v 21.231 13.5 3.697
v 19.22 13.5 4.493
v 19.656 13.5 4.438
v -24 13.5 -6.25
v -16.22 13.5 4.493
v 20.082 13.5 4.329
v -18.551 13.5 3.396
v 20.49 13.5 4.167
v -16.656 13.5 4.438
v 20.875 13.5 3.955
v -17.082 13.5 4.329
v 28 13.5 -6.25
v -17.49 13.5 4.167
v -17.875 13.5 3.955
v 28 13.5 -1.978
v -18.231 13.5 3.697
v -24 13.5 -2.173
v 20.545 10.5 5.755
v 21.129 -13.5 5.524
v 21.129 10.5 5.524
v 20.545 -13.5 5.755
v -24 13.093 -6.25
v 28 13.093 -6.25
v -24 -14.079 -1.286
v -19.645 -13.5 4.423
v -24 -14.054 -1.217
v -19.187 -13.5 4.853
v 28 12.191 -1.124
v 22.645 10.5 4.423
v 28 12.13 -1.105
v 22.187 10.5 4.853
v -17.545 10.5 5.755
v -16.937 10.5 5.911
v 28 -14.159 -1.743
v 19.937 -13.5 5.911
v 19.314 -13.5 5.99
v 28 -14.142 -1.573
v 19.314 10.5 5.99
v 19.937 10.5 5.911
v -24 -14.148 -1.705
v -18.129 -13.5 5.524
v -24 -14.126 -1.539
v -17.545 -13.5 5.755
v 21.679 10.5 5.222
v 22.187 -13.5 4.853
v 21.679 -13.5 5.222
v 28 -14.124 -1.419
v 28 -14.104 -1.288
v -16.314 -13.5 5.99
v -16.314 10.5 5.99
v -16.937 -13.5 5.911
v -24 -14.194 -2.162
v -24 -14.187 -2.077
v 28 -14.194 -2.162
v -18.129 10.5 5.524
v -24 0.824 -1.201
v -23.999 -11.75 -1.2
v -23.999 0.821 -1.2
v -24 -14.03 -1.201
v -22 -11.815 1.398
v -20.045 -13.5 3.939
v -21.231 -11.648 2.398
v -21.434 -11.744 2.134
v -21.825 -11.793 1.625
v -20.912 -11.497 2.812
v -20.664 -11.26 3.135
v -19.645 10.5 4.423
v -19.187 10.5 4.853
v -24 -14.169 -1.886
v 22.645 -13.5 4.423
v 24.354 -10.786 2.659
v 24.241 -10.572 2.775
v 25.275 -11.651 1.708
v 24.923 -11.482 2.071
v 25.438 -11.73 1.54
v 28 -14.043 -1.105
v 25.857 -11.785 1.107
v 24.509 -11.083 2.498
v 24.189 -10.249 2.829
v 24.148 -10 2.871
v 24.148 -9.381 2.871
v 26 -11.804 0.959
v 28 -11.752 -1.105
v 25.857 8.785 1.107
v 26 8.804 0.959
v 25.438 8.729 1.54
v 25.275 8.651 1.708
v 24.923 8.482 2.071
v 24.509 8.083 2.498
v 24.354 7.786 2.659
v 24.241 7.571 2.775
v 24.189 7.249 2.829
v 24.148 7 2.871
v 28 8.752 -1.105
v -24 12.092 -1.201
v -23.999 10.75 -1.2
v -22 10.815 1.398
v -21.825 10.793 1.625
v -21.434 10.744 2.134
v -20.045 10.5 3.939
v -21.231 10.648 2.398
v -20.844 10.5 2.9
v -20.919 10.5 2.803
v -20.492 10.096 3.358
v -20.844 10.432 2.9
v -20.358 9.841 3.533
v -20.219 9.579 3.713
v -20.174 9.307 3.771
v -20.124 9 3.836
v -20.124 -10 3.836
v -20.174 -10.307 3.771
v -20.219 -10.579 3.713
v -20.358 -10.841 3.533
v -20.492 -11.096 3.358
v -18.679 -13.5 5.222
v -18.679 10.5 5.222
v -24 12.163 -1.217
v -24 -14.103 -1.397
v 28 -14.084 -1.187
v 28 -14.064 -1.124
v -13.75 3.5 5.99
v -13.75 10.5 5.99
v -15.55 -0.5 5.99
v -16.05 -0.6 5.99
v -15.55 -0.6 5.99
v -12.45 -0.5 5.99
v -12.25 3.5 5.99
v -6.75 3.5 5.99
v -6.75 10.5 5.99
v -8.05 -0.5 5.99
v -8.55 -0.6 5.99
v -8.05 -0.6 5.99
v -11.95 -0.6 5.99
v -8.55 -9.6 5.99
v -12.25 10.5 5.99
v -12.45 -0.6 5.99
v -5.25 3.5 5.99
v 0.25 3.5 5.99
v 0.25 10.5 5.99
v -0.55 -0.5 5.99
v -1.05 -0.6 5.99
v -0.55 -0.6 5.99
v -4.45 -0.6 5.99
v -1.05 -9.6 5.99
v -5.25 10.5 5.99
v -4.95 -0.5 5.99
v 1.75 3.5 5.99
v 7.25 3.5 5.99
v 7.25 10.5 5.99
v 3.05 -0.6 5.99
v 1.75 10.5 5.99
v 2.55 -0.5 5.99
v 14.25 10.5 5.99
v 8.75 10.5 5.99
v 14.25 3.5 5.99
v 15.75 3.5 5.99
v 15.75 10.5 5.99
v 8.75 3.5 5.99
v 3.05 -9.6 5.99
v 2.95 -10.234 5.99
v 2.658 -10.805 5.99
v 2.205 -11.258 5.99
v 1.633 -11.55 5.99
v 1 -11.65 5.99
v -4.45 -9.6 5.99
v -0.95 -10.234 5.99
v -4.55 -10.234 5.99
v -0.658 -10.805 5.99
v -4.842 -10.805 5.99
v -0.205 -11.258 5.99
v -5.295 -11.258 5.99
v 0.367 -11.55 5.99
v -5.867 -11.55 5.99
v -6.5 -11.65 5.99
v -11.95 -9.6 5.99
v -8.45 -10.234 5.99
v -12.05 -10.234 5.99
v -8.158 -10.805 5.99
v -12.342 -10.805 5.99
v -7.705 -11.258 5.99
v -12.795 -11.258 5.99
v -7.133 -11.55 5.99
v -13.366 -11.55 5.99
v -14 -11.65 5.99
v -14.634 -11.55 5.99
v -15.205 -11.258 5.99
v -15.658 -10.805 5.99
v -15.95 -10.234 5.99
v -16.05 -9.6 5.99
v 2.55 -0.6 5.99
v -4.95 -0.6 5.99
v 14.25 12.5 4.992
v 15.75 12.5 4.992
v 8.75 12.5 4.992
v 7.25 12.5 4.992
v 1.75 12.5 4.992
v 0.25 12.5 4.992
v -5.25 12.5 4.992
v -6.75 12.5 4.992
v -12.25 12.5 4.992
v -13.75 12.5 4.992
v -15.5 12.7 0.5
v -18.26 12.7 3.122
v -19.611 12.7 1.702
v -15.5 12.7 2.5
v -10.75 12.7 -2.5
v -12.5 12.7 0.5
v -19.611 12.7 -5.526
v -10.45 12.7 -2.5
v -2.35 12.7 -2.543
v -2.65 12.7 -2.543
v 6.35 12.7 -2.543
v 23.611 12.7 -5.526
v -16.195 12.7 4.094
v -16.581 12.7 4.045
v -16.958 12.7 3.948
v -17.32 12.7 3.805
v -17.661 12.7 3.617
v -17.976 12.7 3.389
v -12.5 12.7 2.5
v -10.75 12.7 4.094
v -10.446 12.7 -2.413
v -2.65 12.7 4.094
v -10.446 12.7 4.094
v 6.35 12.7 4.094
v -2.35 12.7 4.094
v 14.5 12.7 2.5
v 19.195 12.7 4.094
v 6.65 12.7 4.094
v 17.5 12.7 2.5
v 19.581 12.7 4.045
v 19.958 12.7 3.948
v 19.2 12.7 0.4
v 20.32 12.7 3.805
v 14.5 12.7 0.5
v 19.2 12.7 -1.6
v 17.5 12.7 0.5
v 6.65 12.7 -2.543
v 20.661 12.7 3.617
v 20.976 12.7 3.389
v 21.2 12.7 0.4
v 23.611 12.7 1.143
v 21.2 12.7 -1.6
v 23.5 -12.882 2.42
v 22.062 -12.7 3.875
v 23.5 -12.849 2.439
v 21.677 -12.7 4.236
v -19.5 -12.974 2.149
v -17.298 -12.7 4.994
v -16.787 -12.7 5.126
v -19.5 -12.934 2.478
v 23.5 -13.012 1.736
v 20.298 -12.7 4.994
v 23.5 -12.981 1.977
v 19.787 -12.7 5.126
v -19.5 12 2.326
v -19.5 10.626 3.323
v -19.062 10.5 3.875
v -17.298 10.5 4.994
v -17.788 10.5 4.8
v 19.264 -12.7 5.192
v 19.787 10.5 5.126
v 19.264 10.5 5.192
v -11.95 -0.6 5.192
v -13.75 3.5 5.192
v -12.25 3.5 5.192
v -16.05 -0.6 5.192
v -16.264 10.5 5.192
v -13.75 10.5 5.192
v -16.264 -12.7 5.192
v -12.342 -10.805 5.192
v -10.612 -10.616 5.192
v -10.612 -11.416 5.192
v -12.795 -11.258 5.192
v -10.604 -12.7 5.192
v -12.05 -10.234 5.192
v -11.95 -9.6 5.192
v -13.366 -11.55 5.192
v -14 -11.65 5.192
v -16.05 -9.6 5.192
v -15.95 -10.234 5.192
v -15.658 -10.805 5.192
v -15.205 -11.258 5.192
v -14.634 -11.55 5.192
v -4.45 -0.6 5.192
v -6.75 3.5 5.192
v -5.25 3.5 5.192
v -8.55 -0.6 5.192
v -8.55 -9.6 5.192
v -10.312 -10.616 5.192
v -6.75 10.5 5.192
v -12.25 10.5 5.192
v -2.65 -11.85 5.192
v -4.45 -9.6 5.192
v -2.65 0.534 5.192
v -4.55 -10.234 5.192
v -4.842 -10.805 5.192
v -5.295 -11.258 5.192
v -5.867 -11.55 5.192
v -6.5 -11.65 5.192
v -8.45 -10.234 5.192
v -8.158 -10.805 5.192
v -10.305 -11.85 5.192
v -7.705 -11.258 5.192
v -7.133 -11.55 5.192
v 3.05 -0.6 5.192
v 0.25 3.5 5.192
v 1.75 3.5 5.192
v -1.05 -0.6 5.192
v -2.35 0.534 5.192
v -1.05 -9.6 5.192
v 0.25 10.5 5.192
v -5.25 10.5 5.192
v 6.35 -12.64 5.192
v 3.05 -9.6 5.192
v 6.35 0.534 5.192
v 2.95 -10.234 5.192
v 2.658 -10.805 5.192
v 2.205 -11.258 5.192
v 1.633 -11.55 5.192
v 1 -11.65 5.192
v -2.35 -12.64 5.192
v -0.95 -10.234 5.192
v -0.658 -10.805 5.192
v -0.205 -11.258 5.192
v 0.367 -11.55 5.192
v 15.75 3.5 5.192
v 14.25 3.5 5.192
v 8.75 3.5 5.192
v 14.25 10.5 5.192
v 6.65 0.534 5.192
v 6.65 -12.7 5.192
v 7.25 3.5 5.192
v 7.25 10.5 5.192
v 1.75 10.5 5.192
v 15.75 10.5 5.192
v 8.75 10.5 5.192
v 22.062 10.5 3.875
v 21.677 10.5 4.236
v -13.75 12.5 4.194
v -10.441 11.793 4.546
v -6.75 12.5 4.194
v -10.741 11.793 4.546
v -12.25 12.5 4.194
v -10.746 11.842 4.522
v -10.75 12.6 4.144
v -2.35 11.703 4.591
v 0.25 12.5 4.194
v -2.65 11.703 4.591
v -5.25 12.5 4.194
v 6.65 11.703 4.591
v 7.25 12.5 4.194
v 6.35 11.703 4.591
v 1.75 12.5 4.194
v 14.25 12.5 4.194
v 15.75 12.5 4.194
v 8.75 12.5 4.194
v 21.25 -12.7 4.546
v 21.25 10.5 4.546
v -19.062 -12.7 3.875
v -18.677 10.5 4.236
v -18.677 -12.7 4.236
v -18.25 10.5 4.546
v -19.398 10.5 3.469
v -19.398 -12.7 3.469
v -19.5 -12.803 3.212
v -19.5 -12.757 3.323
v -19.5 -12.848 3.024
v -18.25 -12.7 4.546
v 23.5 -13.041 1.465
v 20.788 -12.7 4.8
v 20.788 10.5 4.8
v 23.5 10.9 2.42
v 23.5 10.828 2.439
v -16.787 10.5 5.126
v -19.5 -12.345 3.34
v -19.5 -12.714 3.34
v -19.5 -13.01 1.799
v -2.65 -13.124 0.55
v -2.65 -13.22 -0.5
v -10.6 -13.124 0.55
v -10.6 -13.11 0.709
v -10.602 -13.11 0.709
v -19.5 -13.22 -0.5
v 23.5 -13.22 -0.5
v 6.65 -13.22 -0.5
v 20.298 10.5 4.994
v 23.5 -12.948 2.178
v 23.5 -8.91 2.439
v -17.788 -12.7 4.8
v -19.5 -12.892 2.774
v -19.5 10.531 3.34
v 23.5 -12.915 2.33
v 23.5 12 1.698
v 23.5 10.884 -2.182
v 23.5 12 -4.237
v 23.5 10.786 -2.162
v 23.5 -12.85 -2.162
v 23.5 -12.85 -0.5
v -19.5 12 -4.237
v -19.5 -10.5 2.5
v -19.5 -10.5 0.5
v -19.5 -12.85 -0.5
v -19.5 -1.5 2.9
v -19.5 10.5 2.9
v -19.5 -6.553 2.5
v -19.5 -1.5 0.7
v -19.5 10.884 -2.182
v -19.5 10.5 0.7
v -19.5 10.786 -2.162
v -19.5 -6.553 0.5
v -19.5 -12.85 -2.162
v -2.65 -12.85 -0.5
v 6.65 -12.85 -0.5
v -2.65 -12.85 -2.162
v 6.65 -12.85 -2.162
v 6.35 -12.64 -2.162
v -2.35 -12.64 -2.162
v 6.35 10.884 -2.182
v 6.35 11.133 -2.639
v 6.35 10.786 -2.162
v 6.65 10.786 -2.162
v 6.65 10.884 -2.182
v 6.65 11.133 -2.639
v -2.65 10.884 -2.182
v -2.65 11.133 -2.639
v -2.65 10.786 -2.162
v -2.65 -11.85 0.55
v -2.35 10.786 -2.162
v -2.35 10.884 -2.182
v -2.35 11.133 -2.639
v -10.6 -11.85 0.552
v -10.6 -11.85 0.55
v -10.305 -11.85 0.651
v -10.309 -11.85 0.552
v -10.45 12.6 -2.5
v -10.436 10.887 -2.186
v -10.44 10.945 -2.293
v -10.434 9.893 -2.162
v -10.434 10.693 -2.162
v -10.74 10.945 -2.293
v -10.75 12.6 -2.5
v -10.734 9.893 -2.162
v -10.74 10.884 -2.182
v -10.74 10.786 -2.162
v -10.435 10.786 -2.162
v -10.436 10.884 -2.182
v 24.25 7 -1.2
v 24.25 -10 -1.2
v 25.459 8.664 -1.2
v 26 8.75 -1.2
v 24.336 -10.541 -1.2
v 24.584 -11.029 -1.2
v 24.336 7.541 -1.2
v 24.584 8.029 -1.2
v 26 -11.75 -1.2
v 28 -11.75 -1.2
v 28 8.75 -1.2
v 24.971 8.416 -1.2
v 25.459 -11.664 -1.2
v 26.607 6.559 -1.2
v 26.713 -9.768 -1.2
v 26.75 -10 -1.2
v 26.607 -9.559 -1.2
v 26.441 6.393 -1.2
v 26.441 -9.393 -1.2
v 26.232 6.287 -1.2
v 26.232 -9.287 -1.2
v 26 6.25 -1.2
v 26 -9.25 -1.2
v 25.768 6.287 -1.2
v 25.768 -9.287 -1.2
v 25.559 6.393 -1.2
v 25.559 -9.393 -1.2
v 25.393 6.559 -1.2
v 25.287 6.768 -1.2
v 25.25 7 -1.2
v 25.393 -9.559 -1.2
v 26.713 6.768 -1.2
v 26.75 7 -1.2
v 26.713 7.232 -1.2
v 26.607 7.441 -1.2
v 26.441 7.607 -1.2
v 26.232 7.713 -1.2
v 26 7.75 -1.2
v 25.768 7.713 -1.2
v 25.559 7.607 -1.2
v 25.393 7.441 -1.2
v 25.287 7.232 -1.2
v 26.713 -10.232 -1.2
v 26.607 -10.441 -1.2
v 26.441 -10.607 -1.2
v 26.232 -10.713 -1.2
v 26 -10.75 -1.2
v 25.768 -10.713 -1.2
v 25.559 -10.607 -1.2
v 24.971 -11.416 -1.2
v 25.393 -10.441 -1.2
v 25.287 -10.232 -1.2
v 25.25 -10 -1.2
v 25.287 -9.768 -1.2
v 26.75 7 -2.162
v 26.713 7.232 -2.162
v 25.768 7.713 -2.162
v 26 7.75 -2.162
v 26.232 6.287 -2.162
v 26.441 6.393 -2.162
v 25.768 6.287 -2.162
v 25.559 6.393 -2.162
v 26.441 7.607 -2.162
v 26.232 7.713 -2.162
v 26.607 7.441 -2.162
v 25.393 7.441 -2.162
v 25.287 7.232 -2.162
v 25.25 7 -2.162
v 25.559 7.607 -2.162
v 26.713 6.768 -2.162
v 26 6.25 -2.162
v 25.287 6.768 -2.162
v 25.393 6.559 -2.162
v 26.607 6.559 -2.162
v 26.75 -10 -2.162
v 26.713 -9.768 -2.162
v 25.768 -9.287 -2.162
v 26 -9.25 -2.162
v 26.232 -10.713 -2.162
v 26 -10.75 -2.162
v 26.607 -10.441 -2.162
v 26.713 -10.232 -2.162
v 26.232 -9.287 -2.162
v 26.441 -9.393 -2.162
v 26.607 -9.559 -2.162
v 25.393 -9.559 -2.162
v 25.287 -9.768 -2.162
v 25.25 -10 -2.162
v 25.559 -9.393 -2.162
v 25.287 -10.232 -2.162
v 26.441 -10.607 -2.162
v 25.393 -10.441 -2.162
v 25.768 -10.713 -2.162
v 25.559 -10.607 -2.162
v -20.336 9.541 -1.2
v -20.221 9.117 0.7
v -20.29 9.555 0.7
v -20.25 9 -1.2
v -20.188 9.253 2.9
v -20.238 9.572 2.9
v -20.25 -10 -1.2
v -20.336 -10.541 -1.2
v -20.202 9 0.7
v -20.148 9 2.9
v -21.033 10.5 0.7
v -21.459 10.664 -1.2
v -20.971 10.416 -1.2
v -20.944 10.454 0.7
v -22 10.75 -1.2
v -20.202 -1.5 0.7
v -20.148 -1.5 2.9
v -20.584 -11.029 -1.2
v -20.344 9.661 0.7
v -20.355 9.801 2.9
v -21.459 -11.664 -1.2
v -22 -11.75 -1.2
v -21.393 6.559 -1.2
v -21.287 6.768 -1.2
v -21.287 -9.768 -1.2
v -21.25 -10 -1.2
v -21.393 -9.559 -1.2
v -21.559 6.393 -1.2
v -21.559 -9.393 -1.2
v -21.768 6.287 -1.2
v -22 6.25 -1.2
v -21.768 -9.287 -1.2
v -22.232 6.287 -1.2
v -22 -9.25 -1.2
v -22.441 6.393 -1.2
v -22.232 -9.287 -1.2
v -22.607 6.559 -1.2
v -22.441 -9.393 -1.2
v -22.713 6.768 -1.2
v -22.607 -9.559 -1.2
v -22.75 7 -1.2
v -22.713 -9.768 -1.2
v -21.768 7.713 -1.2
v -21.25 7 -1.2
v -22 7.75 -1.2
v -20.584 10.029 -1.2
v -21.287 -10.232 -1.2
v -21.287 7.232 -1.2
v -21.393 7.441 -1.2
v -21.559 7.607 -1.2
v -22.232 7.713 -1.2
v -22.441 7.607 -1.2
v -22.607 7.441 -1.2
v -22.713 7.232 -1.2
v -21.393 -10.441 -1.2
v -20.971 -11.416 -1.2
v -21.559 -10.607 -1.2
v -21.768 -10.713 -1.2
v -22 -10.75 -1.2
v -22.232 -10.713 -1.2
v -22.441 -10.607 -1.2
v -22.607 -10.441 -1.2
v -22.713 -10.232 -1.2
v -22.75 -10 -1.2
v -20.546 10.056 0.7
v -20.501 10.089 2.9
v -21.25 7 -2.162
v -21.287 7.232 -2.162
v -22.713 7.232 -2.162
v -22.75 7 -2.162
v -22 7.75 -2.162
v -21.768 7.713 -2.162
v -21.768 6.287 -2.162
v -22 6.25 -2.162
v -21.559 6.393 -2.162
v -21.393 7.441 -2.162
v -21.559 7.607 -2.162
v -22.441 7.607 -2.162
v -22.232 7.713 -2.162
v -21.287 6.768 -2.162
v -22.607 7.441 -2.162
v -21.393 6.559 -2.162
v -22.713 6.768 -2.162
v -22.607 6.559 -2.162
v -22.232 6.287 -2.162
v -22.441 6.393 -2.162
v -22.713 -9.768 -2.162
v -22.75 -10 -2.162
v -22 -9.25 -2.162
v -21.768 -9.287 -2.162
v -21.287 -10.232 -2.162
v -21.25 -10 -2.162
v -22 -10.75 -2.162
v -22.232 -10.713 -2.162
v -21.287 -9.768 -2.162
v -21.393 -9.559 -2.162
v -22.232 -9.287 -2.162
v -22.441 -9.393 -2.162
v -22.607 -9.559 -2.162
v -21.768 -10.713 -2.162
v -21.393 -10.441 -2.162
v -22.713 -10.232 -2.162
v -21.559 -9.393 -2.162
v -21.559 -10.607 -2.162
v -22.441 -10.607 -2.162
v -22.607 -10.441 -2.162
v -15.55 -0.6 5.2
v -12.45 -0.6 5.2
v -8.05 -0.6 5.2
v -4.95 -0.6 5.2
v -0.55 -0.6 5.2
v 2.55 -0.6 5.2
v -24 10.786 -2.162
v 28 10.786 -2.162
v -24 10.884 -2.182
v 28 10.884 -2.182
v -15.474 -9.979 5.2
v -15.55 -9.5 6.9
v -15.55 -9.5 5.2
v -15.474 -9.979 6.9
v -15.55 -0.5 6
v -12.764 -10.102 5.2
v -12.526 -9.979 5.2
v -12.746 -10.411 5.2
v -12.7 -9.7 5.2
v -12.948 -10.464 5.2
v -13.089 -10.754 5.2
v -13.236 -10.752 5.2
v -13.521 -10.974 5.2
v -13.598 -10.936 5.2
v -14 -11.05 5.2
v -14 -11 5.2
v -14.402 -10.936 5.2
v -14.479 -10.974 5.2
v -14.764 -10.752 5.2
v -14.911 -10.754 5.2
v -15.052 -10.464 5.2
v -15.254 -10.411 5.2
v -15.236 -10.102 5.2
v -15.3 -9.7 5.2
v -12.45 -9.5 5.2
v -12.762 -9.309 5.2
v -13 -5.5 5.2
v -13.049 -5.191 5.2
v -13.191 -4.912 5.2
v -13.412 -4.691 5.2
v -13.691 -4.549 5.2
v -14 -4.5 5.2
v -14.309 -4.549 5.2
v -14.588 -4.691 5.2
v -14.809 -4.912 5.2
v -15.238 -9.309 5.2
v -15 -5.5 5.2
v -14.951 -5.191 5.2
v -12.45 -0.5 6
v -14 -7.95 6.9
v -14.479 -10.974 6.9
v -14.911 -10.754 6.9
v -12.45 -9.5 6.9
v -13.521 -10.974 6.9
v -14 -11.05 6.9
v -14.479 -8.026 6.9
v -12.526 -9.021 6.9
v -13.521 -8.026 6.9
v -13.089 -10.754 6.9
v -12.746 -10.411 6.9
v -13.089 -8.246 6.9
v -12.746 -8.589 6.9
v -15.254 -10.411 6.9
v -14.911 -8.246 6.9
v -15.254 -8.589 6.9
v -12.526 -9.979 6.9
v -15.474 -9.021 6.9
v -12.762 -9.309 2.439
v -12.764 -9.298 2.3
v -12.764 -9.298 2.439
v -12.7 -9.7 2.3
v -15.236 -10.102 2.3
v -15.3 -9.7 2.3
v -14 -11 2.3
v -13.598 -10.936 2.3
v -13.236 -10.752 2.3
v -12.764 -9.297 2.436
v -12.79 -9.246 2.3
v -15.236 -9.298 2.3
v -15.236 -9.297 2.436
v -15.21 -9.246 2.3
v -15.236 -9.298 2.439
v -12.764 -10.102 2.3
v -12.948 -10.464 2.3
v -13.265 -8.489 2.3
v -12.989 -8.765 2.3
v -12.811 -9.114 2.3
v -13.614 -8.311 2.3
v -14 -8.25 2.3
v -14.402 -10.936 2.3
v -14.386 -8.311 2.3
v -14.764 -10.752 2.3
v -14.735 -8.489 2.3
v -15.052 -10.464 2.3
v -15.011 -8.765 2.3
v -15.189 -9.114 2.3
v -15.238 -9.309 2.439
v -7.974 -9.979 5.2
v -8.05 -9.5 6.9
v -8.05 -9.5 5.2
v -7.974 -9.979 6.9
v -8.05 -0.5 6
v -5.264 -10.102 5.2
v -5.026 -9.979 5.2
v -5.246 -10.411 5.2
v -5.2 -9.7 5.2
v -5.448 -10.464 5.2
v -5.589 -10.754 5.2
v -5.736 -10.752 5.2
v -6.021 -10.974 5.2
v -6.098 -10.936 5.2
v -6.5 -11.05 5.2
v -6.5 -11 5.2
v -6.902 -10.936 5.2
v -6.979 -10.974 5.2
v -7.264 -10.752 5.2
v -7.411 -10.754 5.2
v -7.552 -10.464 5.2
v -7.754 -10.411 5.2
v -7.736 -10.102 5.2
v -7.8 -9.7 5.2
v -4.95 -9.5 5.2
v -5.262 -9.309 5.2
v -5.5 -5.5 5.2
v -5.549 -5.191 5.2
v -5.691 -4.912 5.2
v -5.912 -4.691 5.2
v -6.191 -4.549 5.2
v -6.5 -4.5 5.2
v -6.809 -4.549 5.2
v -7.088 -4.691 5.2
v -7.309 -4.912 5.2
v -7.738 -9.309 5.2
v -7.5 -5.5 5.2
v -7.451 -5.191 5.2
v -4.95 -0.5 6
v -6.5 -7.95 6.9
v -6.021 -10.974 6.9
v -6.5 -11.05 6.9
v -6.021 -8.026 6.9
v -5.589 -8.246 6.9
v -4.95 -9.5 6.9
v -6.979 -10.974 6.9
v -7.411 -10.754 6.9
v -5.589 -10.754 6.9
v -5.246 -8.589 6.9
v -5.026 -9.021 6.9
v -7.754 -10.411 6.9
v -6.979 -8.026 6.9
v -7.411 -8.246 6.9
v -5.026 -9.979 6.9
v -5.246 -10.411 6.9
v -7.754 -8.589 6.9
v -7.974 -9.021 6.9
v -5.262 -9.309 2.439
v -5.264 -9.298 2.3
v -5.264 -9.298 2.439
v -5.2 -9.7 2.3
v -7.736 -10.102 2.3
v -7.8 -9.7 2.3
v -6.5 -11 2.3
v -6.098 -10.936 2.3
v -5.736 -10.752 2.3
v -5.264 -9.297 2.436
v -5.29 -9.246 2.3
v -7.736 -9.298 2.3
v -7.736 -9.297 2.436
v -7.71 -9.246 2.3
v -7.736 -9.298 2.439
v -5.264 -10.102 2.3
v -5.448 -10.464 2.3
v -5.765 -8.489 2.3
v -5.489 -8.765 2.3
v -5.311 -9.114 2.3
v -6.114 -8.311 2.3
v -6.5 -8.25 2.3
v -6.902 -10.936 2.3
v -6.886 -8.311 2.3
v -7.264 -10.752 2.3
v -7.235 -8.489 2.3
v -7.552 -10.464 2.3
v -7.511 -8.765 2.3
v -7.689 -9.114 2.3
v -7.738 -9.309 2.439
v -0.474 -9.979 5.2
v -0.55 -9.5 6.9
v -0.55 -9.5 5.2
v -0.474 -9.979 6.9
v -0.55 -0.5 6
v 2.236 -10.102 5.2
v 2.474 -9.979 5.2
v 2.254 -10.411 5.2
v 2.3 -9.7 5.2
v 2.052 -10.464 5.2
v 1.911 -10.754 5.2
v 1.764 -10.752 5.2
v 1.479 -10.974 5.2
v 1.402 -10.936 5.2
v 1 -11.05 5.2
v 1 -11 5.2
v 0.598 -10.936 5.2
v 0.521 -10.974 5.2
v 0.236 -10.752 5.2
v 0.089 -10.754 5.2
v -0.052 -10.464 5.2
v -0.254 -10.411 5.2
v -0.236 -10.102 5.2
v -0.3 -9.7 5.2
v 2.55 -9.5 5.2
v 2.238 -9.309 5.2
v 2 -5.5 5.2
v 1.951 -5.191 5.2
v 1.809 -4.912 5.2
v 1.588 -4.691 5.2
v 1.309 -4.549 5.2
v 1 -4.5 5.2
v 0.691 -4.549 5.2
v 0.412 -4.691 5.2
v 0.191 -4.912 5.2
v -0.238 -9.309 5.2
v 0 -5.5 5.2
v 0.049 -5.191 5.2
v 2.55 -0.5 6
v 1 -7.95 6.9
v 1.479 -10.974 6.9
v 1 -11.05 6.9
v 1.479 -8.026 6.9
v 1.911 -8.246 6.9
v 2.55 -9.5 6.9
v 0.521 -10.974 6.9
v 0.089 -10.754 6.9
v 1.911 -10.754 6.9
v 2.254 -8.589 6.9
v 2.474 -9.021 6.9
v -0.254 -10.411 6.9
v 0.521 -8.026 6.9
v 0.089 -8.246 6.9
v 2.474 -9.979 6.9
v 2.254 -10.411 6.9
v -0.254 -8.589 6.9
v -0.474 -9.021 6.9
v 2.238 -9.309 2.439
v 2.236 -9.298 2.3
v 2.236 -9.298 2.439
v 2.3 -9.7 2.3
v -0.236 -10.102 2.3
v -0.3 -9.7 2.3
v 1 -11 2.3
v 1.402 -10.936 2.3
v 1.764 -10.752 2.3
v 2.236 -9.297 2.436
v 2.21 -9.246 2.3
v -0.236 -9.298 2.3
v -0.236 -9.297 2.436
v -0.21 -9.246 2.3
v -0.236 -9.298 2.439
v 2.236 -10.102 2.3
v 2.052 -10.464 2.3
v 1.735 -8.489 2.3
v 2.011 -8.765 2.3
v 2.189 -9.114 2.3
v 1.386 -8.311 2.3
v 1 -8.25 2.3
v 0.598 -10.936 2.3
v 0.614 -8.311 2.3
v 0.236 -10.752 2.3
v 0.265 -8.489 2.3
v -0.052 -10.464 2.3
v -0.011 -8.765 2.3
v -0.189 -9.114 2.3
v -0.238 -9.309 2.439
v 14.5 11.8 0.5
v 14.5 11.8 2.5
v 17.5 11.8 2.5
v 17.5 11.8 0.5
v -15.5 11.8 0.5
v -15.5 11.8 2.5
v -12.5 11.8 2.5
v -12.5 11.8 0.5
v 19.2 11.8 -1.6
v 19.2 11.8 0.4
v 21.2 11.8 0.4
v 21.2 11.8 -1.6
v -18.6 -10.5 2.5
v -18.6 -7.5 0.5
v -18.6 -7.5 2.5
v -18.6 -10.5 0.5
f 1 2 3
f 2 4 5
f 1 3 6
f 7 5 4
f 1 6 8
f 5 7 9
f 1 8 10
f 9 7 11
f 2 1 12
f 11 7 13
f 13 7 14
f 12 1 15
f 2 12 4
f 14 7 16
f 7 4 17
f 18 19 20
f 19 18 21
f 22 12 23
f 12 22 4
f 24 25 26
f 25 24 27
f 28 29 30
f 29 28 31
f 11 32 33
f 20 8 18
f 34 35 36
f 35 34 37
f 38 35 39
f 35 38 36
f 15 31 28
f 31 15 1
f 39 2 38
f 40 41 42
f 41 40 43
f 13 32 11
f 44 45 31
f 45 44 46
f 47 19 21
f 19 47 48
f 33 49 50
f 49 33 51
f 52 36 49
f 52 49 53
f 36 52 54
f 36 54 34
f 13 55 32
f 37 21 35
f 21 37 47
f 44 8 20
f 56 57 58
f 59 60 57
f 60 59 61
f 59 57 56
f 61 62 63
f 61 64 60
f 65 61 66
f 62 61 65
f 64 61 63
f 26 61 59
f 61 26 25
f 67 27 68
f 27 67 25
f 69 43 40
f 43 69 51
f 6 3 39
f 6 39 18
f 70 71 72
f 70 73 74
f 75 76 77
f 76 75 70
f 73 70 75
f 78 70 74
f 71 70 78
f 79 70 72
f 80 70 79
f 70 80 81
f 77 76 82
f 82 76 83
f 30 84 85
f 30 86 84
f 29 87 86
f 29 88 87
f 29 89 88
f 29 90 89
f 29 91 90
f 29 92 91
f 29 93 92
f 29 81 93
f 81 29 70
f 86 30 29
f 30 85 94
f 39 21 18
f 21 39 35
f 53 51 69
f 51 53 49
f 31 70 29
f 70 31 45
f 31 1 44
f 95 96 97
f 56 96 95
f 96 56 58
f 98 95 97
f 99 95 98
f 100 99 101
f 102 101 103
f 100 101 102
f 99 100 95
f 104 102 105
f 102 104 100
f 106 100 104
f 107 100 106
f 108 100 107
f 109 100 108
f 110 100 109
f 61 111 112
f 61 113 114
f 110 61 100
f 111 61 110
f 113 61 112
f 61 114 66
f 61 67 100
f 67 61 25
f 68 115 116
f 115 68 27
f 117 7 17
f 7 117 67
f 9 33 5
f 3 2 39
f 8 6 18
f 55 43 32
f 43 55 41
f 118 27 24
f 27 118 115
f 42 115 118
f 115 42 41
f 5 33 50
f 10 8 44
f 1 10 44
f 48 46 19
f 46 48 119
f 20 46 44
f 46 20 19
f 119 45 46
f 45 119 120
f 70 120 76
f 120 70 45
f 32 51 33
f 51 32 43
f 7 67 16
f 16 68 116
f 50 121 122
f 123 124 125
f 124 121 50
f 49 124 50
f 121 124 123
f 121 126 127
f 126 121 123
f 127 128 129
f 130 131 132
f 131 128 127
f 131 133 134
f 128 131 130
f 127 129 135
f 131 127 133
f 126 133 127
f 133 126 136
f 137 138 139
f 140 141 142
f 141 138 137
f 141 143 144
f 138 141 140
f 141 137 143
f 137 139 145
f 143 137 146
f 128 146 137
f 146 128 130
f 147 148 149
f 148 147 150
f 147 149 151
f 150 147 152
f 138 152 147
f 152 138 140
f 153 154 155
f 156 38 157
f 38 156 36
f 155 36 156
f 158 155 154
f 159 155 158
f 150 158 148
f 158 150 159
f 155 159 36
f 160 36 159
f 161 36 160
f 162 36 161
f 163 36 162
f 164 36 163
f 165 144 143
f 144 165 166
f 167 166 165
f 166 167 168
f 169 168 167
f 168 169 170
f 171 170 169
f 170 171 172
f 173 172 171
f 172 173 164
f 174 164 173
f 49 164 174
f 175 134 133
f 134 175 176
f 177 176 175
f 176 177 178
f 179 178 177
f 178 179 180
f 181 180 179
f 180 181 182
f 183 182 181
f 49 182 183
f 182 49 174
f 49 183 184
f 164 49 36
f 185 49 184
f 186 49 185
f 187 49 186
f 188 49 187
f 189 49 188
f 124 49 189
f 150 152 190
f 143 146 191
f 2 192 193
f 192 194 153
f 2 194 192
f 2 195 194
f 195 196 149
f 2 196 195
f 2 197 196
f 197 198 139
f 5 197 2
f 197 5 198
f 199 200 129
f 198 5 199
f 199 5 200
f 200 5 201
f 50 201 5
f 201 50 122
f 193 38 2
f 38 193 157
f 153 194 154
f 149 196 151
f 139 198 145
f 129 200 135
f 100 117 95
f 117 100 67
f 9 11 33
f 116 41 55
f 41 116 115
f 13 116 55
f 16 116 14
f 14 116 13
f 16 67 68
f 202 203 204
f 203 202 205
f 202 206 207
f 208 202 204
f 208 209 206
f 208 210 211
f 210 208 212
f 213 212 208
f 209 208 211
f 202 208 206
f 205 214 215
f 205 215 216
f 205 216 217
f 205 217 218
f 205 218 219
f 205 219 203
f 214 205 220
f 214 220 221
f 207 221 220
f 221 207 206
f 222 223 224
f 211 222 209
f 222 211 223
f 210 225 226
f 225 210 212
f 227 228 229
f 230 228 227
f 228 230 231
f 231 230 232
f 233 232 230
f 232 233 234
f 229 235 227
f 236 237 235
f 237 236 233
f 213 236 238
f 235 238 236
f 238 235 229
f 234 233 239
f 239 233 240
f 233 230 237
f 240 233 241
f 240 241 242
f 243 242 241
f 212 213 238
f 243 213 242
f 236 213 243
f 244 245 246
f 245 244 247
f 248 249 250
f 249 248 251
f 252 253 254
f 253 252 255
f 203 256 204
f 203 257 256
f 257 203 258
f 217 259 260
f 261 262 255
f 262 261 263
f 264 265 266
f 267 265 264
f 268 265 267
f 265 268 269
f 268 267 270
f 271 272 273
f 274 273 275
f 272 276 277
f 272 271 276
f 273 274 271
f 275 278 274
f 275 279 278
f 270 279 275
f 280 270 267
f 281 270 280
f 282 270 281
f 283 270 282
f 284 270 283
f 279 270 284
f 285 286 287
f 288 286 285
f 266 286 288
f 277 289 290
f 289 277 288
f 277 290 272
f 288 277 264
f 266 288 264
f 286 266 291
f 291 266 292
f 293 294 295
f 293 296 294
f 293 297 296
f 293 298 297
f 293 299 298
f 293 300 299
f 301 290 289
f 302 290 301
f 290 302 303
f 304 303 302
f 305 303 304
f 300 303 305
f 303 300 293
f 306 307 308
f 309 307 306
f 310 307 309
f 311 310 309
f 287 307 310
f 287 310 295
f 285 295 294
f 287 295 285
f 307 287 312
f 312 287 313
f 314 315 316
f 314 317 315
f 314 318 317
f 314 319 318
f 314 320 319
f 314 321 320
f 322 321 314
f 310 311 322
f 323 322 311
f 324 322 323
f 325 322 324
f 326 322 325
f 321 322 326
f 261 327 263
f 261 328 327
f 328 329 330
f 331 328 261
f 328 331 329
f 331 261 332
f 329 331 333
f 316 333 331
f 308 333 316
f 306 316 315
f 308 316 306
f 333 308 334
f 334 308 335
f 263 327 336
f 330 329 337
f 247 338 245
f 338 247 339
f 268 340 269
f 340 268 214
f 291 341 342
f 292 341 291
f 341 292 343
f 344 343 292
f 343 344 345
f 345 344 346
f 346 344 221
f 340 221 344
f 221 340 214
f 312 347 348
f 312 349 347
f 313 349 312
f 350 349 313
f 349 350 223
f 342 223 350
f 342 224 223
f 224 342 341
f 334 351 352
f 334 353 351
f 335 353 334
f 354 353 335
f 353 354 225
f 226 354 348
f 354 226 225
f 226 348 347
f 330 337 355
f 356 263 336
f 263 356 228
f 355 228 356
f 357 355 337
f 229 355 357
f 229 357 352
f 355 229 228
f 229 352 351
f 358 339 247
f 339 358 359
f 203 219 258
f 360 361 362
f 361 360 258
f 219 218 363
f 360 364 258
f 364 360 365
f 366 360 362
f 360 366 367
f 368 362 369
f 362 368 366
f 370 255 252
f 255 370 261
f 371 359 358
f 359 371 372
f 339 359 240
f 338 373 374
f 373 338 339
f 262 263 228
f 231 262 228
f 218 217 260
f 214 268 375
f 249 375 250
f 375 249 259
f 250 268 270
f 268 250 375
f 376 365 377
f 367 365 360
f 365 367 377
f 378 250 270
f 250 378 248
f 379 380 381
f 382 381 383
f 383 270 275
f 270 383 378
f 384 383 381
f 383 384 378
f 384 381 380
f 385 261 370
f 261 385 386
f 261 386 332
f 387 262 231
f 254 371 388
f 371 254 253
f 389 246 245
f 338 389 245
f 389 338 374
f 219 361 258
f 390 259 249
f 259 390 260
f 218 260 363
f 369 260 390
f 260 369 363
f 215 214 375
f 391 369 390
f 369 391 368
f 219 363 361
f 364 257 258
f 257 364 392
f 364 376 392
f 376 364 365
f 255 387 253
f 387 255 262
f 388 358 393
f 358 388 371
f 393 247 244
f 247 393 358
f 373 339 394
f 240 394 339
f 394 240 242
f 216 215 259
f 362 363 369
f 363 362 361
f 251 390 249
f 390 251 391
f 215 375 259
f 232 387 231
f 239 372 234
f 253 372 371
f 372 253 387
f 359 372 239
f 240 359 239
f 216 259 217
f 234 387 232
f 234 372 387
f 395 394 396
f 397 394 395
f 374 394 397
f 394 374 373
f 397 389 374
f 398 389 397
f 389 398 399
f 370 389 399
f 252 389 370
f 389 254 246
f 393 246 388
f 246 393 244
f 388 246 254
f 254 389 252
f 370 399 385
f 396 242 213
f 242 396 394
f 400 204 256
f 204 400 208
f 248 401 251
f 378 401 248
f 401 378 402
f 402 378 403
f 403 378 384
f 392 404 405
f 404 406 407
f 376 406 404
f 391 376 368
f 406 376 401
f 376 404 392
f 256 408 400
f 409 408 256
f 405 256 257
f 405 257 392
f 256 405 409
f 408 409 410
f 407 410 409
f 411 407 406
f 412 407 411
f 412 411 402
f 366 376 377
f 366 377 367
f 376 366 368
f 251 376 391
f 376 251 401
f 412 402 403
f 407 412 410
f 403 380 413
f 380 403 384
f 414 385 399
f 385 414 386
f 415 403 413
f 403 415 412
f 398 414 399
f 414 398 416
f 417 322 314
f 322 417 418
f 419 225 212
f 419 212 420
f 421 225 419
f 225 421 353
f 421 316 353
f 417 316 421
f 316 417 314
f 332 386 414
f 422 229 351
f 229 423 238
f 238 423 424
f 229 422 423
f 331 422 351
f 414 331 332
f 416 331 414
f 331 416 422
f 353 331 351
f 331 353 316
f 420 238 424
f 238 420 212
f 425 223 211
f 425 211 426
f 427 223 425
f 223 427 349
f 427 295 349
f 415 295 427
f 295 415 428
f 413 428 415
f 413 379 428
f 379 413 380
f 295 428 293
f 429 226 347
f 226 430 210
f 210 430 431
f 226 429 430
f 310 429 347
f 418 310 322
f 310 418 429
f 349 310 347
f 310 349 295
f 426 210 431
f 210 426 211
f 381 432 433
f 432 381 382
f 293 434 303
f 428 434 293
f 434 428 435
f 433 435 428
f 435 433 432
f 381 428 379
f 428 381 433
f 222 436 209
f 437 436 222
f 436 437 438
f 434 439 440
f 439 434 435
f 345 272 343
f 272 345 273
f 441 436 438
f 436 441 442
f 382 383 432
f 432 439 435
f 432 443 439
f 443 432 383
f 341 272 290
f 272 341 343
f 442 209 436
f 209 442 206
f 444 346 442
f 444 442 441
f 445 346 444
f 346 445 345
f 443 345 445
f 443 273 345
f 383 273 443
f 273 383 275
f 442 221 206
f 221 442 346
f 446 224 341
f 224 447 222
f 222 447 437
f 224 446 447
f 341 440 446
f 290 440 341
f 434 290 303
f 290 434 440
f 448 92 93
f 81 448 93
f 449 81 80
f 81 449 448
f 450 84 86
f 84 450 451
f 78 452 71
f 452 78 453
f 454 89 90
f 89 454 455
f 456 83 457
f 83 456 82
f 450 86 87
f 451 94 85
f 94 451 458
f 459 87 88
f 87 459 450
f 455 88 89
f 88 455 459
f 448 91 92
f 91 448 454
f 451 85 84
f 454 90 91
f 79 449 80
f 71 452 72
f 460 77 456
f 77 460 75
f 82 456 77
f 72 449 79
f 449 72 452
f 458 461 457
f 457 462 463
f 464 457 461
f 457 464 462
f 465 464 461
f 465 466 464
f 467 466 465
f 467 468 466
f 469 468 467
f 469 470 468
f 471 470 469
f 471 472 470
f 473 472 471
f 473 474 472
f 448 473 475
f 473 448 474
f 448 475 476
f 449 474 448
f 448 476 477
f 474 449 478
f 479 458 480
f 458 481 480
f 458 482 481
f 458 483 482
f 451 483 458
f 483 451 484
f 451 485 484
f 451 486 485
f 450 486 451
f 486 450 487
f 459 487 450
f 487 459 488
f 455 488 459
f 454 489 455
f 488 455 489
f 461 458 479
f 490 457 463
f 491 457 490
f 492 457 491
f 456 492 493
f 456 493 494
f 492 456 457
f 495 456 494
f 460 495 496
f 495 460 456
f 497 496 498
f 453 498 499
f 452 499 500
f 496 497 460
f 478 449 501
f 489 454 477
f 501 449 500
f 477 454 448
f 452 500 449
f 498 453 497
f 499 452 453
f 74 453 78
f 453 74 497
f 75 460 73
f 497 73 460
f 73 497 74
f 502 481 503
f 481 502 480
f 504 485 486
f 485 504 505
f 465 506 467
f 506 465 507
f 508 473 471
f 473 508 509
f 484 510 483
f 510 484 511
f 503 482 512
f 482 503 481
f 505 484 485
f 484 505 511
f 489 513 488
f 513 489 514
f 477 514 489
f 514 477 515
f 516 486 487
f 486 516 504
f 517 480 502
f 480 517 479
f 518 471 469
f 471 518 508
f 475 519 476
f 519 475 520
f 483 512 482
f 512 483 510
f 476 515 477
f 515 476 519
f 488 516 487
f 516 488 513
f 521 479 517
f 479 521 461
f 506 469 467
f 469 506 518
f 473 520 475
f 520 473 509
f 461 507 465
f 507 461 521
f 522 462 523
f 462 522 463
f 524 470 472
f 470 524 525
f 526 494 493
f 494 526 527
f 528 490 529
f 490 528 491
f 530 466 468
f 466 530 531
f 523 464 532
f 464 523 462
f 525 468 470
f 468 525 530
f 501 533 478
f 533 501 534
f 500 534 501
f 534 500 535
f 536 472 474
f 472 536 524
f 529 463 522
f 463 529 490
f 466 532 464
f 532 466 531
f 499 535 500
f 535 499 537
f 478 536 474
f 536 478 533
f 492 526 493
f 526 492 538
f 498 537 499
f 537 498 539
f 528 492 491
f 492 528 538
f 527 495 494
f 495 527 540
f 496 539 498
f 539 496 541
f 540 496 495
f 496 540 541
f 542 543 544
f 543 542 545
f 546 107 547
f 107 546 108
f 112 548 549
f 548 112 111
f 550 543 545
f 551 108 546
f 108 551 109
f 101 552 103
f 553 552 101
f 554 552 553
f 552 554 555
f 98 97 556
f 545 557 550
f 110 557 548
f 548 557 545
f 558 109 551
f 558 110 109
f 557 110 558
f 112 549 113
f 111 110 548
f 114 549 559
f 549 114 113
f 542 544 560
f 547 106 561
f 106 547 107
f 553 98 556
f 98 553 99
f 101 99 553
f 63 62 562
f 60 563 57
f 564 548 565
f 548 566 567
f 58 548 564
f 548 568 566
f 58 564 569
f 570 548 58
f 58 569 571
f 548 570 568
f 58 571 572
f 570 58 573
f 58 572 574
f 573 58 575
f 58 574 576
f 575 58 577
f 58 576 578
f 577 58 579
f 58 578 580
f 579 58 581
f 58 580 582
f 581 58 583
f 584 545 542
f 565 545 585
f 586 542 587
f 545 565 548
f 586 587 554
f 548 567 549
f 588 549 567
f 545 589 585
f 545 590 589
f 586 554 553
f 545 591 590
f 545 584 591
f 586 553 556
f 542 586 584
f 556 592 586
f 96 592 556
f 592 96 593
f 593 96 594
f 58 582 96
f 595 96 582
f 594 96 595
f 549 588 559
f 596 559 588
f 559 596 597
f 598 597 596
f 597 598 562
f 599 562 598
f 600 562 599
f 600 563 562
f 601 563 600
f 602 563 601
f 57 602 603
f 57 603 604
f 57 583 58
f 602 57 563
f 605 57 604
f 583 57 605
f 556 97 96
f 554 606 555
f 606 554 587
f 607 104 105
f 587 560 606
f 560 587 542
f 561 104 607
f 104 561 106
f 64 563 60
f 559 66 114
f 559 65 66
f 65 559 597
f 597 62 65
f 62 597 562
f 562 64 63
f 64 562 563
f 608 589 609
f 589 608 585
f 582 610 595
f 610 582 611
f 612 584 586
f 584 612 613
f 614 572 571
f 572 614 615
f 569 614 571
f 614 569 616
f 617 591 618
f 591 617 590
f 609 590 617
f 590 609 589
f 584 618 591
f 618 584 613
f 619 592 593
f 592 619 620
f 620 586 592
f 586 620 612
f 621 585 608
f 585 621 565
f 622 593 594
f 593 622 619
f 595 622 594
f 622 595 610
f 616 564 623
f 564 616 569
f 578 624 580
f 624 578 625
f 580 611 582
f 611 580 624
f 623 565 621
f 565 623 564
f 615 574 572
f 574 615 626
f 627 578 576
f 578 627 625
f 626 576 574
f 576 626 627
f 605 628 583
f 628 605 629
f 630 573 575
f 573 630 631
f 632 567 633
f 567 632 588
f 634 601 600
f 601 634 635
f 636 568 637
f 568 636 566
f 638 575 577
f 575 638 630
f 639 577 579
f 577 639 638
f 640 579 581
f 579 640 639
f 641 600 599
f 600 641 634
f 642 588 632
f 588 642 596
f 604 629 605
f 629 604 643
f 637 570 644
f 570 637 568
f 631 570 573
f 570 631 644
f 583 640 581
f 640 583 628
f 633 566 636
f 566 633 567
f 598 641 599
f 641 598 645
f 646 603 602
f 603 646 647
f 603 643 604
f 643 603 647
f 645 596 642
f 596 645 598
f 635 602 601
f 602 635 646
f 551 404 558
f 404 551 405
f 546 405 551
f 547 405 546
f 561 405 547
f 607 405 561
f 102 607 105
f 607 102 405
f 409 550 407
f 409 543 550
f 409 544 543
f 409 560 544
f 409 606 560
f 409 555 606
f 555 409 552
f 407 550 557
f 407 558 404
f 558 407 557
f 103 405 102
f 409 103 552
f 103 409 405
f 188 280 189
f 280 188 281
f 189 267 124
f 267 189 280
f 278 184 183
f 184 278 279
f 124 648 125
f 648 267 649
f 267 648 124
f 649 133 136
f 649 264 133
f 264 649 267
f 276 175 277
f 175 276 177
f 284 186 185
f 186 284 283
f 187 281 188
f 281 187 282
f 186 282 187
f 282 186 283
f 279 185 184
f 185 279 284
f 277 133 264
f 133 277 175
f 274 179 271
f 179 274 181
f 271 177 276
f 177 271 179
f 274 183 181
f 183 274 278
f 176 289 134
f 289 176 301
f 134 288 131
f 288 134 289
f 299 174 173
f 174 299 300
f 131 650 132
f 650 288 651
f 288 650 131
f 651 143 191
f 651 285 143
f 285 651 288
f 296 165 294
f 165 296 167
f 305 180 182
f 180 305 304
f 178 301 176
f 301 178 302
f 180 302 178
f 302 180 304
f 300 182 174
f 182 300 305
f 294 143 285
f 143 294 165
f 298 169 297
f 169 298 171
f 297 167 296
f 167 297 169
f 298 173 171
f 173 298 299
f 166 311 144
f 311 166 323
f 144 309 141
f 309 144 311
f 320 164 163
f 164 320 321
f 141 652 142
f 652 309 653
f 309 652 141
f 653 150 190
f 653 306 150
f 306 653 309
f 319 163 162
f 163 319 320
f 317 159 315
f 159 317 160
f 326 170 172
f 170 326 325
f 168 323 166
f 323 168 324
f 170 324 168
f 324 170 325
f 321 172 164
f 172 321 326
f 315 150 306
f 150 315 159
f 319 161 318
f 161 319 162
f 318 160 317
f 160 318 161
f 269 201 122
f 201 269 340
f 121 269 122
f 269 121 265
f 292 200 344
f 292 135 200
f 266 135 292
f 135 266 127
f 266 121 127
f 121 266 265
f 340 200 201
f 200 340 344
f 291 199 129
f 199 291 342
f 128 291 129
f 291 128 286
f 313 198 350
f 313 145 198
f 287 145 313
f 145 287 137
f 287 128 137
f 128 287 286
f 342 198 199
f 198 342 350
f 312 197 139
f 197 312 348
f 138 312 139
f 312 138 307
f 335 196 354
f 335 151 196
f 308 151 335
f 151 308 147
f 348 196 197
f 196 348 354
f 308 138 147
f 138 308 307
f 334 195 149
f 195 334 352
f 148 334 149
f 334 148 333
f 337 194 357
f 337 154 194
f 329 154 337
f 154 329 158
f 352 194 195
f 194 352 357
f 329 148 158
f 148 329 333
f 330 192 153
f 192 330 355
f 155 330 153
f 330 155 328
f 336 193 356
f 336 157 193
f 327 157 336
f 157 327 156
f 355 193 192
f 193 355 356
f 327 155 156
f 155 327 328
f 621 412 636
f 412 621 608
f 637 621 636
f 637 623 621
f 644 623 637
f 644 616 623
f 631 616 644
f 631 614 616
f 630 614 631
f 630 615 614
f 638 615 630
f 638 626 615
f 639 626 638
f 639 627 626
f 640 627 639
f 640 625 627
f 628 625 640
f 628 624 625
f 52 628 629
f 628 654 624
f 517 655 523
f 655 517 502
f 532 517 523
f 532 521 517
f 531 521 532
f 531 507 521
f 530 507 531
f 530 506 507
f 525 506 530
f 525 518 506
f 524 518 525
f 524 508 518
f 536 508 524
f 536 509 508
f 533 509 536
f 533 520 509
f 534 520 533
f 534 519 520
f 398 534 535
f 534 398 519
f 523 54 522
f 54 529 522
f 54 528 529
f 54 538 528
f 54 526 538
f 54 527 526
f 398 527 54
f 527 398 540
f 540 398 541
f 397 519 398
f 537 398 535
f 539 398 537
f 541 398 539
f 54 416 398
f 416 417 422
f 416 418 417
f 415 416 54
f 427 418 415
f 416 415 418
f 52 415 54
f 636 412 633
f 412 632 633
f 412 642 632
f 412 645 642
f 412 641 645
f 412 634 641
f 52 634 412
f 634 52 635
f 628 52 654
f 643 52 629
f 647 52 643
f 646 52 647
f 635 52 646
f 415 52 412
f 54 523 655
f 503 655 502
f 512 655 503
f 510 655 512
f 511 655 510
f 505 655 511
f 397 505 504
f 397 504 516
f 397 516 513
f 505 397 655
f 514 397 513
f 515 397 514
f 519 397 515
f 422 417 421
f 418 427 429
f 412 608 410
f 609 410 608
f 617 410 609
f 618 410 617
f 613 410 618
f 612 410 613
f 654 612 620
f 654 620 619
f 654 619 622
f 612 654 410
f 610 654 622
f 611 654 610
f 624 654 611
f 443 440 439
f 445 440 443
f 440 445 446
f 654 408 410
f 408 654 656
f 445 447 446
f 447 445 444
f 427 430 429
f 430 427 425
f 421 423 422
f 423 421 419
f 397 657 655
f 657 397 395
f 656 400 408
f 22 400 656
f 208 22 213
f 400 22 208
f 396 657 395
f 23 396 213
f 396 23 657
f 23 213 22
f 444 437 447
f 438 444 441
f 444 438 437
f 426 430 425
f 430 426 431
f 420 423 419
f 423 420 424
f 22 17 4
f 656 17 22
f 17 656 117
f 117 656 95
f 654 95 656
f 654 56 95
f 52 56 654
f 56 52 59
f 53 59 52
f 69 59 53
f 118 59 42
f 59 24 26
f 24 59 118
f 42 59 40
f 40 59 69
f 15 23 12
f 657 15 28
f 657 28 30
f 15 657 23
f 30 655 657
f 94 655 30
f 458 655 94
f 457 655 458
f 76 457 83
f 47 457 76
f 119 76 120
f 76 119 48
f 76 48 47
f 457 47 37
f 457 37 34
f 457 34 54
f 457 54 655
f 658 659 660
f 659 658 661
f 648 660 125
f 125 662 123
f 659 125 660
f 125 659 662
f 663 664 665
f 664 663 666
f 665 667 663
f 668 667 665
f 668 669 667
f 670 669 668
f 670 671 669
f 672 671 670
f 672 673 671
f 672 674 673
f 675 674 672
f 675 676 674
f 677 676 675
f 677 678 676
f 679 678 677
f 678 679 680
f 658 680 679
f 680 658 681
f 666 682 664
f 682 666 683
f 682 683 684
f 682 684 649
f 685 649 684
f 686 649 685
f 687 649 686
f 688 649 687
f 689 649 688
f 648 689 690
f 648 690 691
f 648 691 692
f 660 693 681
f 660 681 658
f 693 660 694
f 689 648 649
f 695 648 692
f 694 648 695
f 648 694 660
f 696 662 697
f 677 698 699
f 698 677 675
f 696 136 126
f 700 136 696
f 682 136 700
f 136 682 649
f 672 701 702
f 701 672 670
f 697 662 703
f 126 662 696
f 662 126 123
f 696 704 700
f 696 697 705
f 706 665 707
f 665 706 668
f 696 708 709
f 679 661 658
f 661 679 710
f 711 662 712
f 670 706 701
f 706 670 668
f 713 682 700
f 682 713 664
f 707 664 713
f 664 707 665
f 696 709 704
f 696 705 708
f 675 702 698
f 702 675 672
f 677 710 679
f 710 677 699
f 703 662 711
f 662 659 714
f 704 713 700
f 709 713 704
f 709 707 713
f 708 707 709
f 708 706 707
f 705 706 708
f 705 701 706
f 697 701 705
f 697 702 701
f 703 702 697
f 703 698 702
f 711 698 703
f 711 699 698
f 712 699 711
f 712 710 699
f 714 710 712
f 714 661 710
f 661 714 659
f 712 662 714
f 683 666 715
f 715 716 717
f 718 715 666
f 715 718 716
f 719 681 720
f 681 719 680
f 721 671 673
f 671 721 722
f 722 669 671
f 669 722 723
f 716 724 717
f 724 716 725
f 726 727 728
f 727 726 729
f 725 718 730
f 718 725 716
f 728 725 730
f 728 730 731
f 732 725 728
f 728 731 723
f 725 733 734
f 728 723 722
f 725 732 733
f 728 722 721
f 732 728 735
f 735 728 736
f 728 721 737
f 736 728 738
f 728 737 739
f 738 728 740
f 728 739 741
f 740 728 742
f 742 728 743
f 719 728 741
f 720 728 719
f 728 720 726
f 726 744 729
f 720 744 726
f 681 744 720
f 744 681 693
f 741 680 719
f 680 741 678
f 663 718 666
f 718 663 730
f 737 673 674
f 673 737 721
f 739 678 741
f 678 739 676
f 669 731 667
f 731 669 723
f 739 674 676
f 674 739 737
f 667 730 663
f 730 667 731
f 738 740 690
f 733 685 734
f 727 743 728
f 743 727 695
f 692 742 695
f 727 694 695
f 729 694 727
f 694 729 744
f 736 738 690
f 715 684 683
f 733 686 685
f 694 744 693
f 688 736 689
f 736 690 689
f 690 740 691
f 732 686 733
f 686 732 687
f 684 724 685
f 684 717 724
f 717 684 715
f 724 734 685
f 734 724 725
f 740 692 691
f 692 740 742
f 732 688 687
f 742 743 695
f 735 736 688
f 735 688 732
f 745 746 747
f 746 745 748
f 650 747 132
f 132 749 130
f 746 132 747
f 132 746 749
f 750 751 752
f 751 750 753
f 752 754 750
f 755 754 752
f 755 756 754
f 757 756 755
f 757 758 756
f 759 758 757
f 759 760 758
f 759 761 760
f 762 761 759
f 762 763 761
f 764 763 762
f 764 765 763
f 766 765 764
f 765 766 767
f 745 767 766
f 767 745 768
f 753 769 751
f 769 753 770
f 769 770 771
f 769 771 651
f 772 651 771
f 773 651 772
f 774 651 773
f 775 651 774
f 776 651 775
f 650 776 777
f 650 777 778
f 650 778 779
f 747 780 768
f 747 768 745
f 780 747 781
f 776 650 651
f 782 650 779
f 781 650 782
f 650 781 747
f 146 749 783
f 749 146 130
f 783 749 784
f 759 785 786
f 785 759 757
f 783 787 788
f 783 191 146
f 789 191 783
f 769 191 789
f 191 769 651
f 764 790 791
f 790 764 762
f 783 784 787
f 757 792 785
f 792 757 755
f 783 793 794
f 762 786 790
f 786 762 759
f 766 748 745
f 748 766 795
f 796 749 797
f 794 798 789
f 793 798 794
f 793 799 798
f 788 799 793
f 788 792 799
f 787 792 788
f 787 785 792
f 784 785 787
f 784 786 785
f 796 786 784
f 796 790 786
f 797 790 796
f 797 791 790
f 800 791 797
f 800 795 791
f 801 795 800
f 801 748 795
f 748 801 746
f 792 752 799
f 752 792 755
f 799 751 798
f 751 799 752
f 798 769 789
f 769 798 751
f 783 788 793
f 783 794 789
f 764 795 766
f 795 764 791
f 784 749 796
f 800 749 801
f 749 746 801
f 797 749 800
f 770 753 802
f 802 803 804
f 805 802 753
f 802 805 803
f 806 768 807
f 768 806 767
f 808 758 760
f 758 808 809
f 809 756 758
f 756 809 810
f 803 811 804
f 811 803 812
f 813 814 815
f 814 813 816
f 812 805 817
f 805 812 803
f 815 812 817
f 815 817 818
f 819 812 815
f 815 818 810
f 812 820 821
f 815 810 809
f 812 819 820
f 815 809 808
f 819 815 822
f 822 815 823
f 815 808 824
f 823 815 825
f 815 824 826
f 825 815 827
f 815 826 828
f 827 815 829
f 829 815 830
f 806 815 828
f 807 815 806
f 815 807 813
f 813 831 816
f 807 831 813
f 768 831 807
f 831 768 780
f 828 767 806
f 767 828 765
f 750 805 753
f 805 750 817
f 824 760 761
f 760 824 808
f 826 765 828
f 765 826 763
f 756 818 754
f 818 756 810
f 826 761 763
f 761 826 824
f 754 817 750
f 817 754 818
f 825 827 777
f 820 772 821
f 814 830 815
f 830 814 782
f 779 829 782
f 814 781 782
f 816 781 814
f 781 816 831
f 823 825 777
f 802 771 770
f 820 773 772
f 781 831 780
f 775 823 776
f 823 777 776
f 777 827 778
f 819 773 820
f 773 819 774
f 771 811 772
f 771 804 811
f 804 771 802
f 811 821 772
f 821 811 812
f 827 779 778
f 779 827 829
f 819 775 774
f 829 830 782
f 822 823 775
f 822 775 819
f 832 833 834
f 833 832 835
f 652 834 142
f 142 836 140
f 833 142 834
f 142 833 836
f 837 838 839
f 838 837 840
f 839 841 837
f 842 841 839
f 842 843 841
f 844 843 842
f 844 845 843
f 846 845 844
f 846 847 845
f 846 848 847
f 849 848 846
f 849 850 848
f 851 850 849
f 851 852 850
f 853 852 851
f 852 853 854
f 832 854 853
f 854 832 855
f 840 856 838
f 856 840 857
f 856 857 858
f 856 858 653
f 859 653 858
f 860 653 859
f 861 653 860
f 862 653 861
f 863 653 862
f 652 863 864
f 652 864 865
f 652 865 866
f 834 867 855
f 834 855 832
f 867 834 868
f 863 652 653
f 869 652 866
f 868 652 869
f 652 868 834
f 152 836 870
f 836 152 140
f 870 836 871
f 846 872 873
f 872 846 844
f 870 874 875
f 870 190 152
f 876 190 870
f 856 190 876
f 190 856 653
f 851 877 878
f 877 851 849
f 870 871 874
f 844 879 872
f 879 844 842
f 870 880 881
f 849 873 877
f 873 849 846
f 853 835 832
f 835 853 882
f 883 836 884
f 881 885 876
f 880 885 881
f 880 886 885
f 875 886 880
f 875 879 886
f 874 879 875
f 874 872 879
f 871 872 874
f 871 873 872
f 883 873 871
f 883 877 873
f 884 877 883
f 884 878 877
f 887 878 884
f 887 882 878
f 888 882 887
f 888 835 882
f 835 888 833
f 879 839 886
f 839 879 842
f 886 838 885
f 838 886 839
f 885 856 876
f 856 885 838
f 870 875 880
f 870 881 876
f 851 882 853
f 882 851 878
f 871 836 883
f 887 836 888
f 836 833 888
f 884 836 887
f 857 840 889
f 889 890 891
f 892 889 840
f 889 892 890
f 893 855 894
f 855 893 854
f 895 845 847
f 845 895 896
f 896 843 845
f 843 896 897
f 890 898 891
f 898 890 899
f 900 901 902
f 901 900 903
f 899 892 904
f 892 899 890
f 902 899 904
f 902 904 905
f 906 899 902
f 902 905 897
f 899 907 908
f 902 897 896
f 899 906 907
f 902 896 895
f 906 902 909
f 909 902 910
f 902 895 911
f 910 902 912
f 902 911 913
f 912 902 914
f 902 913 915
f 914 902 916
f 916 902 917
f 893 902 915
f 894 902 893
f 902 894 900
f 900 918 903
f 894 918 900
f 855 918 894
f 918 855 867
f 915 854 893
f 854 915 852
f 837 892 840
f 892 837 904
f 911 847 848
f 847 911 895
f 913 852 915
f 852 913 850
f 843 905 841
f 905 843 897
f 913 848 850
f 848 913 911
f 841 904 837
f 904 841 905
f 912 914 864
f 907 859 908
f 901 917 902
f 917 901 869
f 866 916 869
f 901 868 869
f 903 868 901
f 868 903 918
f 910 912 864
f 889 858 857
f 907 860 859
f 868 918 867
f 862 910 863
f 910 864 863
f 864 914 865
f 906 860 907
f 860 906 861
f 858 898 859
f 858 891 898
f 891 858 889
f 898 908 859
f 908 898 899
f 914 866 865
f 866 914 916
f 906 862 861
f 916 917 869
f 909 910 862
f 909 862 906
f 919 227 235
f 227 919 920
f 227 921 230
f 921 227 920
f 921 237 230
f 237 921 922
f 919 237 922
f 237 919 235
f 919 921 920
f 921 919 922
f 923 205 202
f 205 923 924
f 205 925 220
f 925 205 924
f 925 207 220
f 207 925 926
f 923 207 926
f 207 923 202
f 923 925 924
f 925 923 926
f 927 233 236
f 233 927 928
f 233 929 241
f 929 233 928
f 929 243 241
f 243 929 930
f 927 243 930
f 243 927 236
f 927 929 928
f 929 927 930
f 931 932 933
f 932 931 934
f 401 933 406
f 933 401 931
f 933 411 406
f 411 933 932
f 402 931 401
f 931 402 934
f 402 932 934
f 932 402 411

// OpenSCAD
$fn=20;
//electronics();
//translate([0,0,-25.5])rotate([-11.31,0,0])goggles();
fullcase();

module goggles(){
  color("white")translate([-50,-19,0])hull(){
    cube([100,0.1,20]);
    translate([0,25,5])cube([100,0.1,20]);
    translate([0,30,-1])cube([100,0.1,20]);
  }
}

module fullcase(){
  difference(){
  translate([0,0,1])difference(){
    union(){
      difference(){
        case(0);
        case(0.8);
      }
      intersection(){
        case(0);
        union(){
          hull(){
            translate([26,12,0])cylinder(d=5,h=14,center=true);
            translate([26,-14,0])cylinder(d=5,h=14,center=true);
          }
          hull(){
            translate([-22,12,0])cylinder(d=5,h=14,center=true);
            translate([-22,-14,0])cylinder(d=5,h=14,center=true);
          }
        }
      }
      support();
    }
    // mounting holes
    hull(){
      translate([26,7,-2.2])cylinder(d1=3.5,d2=4,h=10);
      translate([26,-10,-2.2])cylinder(d1=3.5,d2=4,h=10);
      translate([30,7,-2.2])cylinder(d1=3.5,d2=4,h=10);
      translate([30,-10,-2.2])cylinder(d1=3.5,d2=4,h=10);
    }
      translate([26,7,0])cylinder(d=1.5,h=10,center=true);
      translate([26,-10,0])cylinder(d=1.5,h=10,center=true);
    hull(){
      translate([-22,9,-2.2])cylinder(d1=3.5,d2=4,h=10);
      translate([-22,-10,-2.2])cylinder(d1=3.5,d2=4,h=10);
      translate([-25,9,-2.2])cylinder(d1=3.5,d2=4,h=10);
      translate([-25,-10,-2.2])cylinder(d1=3.5,d2=4,h=10);
    }
      translate([-22,7,0])cylinder(d=1.5,h=10,center=true);
      translate([-22,-10,0])cylinder(d=1.5,h=10,center=true);

    // sdcard slot
    translate([-20,4.5,0.8])cube([10,12,2.2],center=true);
    
    //translate([0,0,-8.5])cube([100,100,10],center=true);
    //translate([-5,-20,-10])cube([100,100,20]);
  }
    //electronics();
    translate([-38/2+4/2+3,-25/2+4/2+0.9,0]){
      hull(){
        cylinder(d=4.1,h=10); //button
        translate([-4.1/2,5,0])cube([4.1,4,10]);
      }
      translate([7.5,0,0])hull(){
        cylinder(d=4.1,h=10); //button
        translate([-4.1/2,5,0])cube([4.1,4,10]);
      }
      translate([7.5*2,0,0])hull(){
        cylinder(d=4.1,h=10); //button
        translate([-4.1/2,5,0])cube([4.1,4,10]);
      }
    }
    translate([0,0,-25.5])rotate([-11.31,0,0])goggles();
    
    //***** ventilation
    for (i = [0 : 7 : 30] ){
      translate([i-13,8,5])cube([1.5,9,2], center=true);
    }
    /*
    // screw holes
    translate([38/2-7,-25/2+2,0])cylinder(d=1.5,h=5,$fn=20);
    translate([38/2-15.5,25/2-2,0])cylinder(d=1.5,h=5,$fn=20);
    */
    translate([-(20/2+24),0,0])cube([20,100,50],center=true);
    translate([(20/2+28),0,0])cube([20,100,50],center=true);
  }
  // PCB tabs
  //down
  translate([16,12.3,1.2+0.3])cube([3,1,2],center=true);
  translate([-14,12.3,1.2+0.3])cube([3,1,2],center=true);
  translate([19.7+0.5,12.3,-0.6])cube([2,1,2],center=true);
  //side
  hull(){
    translate([-19.1,-9,1.2+0.3])cube([1,3,2],center=true);
    translate([-19.6,-8,1.2+0.3])cube([0.1,3,2],center=true);
  }
  //***** buttons
  translate([-38/2+4/2+3,-25/2+4/2+1,5.2]){
    button();
    translate([7.5,0,0])button();
    translate([7.5*2,0,0])button();
  }
}


module support(){
  translate([2,-13.2,-2.5])cube([50,0.7,2],center=true);
  
  translate([2,-13.04,-0.1])cube([9,0.8,10],center=true);
  hull(){
  translate([2+9/2,-13.04,-0.1])cube([0.3,0.8,10],center=true);
  translate([2+9/2,13,-1+1])cube([0.3,0.8,7],center=true);
  }
  hull(){
  translate([2-9/2,-13.04,-0.1])cube([0.3,0.8,10],center=true);
  translate([2-9/2,13,-1+1])cube([0.3,0.8,7],center=true);
  }
  
  translate([-6.6,-12.6,2])cube([8,1.5,4.9],center=true);
  hull(){
  translate([-6.6-3.85,-13.04,2])cube([0.3,0.8,4.5],center=true);
  translate([-6.6-4,13,0])cube([0.3,0.8,7],center=true);
  }
}


module button(){
  hull(){
    cylinder(d=3.1,h=1.7); //button
    translate([-3.1/2,5,0])cube([3.1,4,0.8]);
  }
  translate([0,-0.2,-2.9])cylinder(d=2.6,h=3);
  
  hull(){
  translate([0,0,-2.9])cylinder(d=2.5,h=3);
  translate([0,4,0])cylinder(d=2,h=0.1);
  }
}

module case(wall){
  hull(){
    rotate([90,0,0]){
      translate([-16,0,3/2])cylinder(d=10-wall*2, h=27-3-wall*2,center=true,$fn=50);
      translate([19,0,3/2])cylinder(d=10-wall*2, h=27-3-wall*2,center=true,$fn=50);
      
      translate([-16,0,-(27-3-wall)/2])cylinder(d2=10-wall*2,d1=7-wall, h=3-wall,center=true,$fn=50);
      translate([19,0,-(27-3-wall)/2])cylinder(d2=10-wall*2,d1=7-wall, h=3-wall,center=true,$fn=50);
    }
    translate([2.5,-0.5,-7])cube([60-wall*2,28-wall*2,0.5],center=true);
  }
}

module electronics(){
  difference(){
    union(){
      DVRpcb();
      translate([13.5,-1,0])MYpcb();
    }
    translate([38/2-7,-25/2+2,0])cylinder(d=2,h=10,$fn=20,center=true);
    translate([38/2-7,-25/2+2,-3-0.5])cylinder(d=4,h=3,$fn=20);
    translate([38/2-15.5,25/2-2,0])cylinder(d=2,h=10,$fn=20,center=true);
    translate([38/2-15.5,25/2-2,-3-0.5])cylinder(d=4,h=3,$fn=20);
  }
}

module DVRpcb(){
  color("blue")cube([38,25,1], center=true); // pcb
  color("black")translate([0,0,-(0.5+1.5/2)])cube([36,23,1.5], center=true); // components
  color("lightgray")translate([38/2-1.5,0,(0.5+3/2)])cube([7,24,3], center=true); // connectors
  color("gray")translate([-38/2+15/2+1,25/2-15/2-2,(0.5+2/2)])cube([15,15,2], center=true); // cardreader
  color("black")translate([-38/2+10/2-2,25/2-10/2-3,(0.5+2/2)+0.4])cube([10,10,1], center=true); // sdcard
  
  translate([-38/2+4/2+3,-25/2+2.5/2+1,(0.5+1.5/2)]){
    color("gray")cube([4,2.5,1.5],center=true); //button
    color("black")cylinder(d=1.5,h=1,$fn=10);
  }
  translate([-38/2+4/2+3+7.5,-25/2+2.5/2+1,(0.5+1.5/2)]){
    color("gray")cube([4,2.5,1.5],center=true); //button
    color("black")cylinder(d=1.5,h=1,$fn=10);
  }
  translate([-38/2+4/2+3+7.5+7.5,-25/2+2.5/2+1,(0.5+1.5/2)]){
    color("gray")cube([4,2.5,1.5],center=true); //button
    color("black")cylinder(d=1.5,h=1,$fn=10);
  }
}

module MYpcb(){
  color("purple")translate([-38/2+15/2+1,25/2-15/2-2,(0.5+0.8/2)+2])cube([14,21,0.8], center=true); // cardreader
  color("purple")translate([-38/2+15/2+3.25+4,25/2-15/2-2.25-3.5,(0.5+0.8/2)+2])cube([9.5,21.5,0.8], center=true); // cardreader
  color("black")translate([-10,0,(0.5+1.8/2)+2.8])cube([6,6,1.8], center=true); // cardreader
  
}
